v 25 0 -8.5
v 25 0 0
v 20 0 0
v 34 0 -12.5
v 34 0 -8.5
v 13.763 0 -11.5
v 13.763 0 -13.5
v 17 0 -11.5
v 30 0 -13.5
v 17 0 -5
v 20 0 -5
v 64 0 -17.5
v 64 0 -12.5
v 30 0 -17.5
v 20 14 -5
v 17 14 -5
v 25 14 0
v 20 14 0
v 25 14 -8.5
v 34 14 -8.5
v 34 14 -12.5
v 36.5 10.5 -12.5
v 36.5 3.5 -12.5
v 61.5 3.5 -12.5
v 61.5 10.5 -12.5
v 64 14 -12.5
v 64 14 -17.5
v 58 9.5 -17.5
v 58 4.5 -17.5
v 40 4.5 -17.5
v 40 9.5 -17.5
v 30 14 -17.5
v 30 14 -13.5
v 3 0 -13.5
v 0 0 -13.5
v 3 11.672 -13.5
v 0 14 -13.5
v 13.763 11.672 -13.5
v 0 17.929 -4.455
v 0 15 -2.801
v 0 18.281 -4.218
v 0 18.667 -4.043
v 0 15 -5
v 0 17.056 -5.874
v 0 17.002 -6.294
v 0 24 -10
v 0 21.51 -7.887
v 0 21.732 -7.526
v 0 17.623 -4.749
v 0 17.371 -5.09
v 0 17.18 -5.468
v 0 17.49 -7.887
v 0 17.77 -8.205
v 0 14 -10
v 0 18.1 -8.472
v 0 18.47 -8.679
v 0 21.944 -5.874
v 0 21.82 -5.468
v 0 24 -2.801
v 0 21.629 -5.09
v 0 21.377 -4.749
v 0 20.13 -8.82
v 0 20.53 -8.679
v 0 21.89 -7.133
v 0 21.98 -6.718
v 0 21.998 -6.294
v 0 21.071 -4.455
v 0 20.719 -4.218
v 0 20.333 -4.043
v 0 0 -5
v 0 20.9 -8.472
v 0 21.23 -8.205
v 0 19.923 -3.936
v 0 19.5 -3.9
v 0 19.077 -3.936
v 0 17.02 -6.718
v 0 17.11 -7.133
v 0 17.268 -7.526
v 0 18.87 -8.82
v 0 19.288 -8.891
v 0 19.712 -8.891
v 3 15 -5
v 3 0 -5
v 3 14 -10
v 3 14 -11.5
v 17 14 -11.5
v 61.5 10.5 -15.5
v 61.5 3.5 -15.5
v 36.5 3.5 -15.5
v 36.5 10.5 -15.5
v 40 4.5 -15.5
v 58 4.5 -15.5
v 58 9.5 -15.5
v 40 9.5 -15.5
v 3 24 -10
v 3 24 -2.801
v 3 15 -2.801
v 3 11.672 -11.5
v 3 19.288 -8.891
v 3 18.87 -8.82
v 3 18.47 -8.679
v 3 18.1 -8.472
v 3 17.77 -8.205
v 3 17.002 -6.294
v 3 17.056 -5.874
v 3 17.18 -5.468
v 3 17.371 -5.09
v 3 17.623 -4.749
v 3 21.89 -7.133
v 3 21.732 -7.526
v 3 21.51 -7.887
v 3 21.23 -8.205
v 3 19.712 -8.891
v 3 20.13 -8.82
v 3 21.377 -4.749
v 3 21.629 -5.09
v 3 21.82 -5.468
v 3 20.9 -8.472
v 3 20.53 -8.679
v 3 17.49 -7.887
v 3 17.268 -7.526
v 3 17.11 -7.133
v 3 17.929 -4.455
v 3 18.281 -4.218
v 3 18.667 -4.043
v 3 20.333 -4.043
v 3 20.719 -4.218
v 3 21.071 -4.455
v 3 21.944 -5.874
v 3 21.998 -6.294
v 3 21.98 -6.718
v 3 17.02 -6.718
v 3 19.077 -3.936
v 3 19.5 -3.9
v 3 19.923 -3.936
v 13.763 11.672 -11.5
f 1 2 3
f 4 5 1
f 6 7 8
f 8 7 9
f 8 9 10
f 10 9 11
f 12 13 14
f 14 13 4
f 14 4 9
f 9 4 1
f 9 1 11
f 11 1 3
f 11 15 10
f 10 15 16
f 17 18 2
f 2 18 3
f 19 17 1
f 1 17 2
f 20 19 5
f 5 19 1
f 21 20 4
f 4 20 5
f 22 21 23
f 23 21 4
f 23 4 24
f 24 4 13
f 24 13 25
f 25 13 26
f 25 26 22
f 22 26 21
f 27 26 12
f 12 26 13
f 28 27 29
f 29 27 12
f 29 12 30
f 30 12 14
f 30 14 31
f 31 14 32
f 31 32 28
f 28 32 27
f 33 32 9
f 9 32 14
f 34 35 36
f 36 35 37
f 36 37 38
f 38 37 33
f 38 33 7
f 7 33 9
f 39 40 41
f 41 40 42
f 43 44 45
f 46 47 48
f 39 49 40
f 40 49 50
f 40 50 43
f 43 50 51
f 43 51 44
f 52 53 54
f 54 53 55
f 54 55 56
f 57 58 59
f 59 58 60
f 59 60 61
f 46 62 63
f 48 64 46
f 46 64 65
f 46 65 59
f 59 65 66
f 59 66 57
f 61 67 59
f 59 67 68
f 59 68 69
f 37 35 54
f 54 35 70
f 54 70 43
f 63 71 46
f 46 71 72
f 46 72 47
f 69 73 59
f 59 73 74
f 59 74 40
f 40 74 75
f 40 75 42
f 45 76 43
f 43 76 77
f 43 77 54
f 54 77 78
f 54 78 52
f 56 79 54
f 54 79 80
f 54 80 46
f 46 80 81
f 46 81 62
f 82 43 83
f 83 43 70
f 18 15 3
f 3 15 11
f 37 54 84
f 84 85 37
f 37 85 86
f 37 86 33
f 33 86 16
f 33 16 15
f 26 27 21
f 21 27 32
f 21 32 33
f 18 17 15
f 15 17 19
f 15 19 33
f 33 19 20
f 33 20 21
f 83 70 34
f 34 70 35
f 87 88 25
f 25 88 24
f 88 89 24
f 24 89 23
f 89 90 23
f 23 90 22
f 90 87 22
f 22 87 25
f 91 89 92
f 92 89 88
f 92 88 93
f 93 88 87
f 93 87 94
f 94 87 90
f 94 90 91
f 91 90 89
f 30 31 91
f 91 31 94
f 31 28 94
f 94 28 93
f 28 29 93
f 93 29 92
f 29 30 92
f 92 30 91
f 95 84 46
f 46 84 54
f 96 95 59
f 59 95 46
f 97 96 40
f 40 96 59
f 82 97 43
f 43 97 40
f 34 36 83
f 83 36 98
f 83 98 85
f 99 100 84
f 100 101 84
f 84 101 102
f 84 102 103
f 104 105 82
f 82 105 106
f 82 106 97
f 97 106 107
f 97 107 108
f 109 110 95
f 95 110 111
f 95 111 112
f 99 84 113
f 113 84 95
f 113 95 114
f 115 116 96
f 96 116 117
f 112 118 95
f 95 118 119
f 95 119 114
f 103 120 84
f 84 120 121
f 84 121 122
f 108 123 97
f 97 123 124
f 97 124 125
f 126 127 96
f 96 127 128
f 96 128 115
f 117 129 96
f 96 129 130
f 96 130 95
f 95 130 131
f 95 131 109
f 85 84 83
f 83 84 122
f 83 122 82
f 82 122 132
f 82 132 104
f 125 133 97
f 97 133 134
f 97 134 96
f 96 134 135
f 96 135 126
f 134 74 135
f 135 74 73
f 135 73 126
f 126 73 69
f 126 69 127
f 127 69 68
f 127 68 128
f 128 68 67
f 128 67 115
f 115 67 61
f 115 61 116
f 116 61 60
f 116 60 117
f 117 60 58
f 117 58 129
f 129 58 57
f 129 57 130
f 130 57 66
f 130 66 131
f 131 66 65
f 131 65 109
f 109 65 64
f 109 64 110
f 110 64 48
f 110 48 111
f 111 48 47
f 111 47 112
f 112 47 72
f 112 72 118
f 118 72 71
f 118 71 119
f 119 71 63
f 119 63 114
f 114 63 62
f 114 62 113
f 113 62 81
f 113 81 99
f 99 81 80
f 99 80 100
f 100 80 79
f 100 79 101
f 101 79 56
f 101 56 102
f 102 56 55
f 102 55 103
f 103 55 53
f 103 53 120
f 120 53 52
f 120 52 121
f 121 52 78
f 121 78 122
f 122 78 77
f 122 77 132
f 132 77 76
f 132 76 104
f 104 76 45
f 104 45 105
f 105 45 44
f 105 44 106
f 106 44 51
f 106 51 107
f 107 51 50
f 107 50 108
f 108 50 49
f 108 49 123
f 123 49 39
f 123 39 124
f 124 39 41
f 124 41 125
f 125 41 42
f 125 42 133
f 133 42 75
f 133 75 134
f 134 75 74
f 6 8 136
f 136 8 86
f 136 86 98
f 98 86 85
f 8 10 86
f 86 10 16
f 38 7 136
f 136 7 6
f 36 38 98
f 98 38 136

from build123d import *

# Parameters (mm, degrees)
BOSS_EXTRUDE1_DEPTH      = 14
SKETCH2_W                = 25
SKETCH2_H                = 7
CUT_EXTRUDE3_DEPTH       = 3
SKETCH10_W               = 18
SKETCH10_H               = 5
CUT_EXTRUDE4_DEPTH       = 68.321987493
BOSS_EXTRUDE8_DEPTH      = 3
SKETCH15_R               = 2.5
CUT_EXTRUDE8_DEPTH       = 71.556714776
CUT_EXTRUDE11_DEPTH      = 7
CUT_EXTRUDE11_DEPTH_BACK = 7
SKETCH18_W               = 6.5
SKETCH18_H               = 14
SKETCH19_W               = 10.762656819
SKETCH19_H               = 11.671990231
CUT_EXTRUDE12_DEPTH      = 7


with BuildPart() as part:
    # Sketch1 → Boss-Extrude1 (new body)
    with BuildSketch(Plane(origin=(0, 0, 0), x_dir=(1, 0, 0), z_dir=(0, 1, 0))):
        Polygon((25, 0), (25, 8.5), (34, 8.5), (34, 12.5), (64, 12.5), (64, 17.5), (30, 17.5), (30, 13.5), (0, 13.5), (0, 5), (20, 5), (20, 0), align=None)
    extrude(amount=BOSS_EXTRUDE1_DEPTH)

    # Sketch2 → Cut-Extrude3 (cut)
    with BuildSketch(Plane.XY.offset(-12.5)):
        with Locations((49, 7)):
            Rectangle(SKETCH2_W, SKETCH2_H)
    extrude(amount=-CUT_EXTRUDE3_DEPTH, mode=Mode.SUBTRACT)

    # Sketch10 → Cut-Extrude4 (cut, through all)
    with BuildSketch(Plane.XY.offset(-15.5)):
        with Locations((49, 7)):
            Rectangle(SKETCH10_W, SKETCH10_H)
    extrude(amount=-CUT_EXTRUDE4_DEPTH, mode=Mode.SUBTRACT)

    # Sketch11 → Boss-Extrude8 (add)
    with BuildSketch(Plane.ZY):
        Polygon((-10, 14), (-10, 24), (-2.800888244, 24), (-2.800888244, 15), (-5, 15), (-5, 14), align=None)
    extrude(amount=-BOSS_EXTRUDE8_DEPTH)

    # Sketch15 → Cut-Extrude8 (cut, through all)
    with BuildSketch(Plane.ZY):
        with Locations((-6.400444122, 19.5)):
            Circle(SKETCH15_R)
    extrude(amount=-CUT_EXTRUDE8_DEPTH, mode=Mode.SUBTRACT)

    # Sketch18 → Cut-Extrude11 (cut, two sides: drawn at the far end of the back side and taken through both)
    with BuildSketch(Plane.ZY.offset(-10).offset(-CUT_EXTRUDE11_DEPTH_BACK)):
        with Locations((-8.25, 7)):
            Rectangle(SKETCH18_W, SKETCH18_H)
    extrude(amount=CUT_EXTRUDE11_DEPTH + CUT_EXTRUDE11_DEPTH_BACK, mode=Mode.SUBTRACT)

    # Sketch19 → Cut-Extrude12 (cut)
    with BuildSketch(Plane(origin=(0, 0, -13.5), x_dir=(-1, 0, 0), z_dir=(0, 0, -1))):
        with Locations((-8.38132841, 5.835995116)):
            Rectangle(SKETCH19_W, SKETCH19_H)
    extrude(amount=-CUT_EXTRUDE12_DEPTH, mode=Mode.SUBTRACT)


solid = part.part
